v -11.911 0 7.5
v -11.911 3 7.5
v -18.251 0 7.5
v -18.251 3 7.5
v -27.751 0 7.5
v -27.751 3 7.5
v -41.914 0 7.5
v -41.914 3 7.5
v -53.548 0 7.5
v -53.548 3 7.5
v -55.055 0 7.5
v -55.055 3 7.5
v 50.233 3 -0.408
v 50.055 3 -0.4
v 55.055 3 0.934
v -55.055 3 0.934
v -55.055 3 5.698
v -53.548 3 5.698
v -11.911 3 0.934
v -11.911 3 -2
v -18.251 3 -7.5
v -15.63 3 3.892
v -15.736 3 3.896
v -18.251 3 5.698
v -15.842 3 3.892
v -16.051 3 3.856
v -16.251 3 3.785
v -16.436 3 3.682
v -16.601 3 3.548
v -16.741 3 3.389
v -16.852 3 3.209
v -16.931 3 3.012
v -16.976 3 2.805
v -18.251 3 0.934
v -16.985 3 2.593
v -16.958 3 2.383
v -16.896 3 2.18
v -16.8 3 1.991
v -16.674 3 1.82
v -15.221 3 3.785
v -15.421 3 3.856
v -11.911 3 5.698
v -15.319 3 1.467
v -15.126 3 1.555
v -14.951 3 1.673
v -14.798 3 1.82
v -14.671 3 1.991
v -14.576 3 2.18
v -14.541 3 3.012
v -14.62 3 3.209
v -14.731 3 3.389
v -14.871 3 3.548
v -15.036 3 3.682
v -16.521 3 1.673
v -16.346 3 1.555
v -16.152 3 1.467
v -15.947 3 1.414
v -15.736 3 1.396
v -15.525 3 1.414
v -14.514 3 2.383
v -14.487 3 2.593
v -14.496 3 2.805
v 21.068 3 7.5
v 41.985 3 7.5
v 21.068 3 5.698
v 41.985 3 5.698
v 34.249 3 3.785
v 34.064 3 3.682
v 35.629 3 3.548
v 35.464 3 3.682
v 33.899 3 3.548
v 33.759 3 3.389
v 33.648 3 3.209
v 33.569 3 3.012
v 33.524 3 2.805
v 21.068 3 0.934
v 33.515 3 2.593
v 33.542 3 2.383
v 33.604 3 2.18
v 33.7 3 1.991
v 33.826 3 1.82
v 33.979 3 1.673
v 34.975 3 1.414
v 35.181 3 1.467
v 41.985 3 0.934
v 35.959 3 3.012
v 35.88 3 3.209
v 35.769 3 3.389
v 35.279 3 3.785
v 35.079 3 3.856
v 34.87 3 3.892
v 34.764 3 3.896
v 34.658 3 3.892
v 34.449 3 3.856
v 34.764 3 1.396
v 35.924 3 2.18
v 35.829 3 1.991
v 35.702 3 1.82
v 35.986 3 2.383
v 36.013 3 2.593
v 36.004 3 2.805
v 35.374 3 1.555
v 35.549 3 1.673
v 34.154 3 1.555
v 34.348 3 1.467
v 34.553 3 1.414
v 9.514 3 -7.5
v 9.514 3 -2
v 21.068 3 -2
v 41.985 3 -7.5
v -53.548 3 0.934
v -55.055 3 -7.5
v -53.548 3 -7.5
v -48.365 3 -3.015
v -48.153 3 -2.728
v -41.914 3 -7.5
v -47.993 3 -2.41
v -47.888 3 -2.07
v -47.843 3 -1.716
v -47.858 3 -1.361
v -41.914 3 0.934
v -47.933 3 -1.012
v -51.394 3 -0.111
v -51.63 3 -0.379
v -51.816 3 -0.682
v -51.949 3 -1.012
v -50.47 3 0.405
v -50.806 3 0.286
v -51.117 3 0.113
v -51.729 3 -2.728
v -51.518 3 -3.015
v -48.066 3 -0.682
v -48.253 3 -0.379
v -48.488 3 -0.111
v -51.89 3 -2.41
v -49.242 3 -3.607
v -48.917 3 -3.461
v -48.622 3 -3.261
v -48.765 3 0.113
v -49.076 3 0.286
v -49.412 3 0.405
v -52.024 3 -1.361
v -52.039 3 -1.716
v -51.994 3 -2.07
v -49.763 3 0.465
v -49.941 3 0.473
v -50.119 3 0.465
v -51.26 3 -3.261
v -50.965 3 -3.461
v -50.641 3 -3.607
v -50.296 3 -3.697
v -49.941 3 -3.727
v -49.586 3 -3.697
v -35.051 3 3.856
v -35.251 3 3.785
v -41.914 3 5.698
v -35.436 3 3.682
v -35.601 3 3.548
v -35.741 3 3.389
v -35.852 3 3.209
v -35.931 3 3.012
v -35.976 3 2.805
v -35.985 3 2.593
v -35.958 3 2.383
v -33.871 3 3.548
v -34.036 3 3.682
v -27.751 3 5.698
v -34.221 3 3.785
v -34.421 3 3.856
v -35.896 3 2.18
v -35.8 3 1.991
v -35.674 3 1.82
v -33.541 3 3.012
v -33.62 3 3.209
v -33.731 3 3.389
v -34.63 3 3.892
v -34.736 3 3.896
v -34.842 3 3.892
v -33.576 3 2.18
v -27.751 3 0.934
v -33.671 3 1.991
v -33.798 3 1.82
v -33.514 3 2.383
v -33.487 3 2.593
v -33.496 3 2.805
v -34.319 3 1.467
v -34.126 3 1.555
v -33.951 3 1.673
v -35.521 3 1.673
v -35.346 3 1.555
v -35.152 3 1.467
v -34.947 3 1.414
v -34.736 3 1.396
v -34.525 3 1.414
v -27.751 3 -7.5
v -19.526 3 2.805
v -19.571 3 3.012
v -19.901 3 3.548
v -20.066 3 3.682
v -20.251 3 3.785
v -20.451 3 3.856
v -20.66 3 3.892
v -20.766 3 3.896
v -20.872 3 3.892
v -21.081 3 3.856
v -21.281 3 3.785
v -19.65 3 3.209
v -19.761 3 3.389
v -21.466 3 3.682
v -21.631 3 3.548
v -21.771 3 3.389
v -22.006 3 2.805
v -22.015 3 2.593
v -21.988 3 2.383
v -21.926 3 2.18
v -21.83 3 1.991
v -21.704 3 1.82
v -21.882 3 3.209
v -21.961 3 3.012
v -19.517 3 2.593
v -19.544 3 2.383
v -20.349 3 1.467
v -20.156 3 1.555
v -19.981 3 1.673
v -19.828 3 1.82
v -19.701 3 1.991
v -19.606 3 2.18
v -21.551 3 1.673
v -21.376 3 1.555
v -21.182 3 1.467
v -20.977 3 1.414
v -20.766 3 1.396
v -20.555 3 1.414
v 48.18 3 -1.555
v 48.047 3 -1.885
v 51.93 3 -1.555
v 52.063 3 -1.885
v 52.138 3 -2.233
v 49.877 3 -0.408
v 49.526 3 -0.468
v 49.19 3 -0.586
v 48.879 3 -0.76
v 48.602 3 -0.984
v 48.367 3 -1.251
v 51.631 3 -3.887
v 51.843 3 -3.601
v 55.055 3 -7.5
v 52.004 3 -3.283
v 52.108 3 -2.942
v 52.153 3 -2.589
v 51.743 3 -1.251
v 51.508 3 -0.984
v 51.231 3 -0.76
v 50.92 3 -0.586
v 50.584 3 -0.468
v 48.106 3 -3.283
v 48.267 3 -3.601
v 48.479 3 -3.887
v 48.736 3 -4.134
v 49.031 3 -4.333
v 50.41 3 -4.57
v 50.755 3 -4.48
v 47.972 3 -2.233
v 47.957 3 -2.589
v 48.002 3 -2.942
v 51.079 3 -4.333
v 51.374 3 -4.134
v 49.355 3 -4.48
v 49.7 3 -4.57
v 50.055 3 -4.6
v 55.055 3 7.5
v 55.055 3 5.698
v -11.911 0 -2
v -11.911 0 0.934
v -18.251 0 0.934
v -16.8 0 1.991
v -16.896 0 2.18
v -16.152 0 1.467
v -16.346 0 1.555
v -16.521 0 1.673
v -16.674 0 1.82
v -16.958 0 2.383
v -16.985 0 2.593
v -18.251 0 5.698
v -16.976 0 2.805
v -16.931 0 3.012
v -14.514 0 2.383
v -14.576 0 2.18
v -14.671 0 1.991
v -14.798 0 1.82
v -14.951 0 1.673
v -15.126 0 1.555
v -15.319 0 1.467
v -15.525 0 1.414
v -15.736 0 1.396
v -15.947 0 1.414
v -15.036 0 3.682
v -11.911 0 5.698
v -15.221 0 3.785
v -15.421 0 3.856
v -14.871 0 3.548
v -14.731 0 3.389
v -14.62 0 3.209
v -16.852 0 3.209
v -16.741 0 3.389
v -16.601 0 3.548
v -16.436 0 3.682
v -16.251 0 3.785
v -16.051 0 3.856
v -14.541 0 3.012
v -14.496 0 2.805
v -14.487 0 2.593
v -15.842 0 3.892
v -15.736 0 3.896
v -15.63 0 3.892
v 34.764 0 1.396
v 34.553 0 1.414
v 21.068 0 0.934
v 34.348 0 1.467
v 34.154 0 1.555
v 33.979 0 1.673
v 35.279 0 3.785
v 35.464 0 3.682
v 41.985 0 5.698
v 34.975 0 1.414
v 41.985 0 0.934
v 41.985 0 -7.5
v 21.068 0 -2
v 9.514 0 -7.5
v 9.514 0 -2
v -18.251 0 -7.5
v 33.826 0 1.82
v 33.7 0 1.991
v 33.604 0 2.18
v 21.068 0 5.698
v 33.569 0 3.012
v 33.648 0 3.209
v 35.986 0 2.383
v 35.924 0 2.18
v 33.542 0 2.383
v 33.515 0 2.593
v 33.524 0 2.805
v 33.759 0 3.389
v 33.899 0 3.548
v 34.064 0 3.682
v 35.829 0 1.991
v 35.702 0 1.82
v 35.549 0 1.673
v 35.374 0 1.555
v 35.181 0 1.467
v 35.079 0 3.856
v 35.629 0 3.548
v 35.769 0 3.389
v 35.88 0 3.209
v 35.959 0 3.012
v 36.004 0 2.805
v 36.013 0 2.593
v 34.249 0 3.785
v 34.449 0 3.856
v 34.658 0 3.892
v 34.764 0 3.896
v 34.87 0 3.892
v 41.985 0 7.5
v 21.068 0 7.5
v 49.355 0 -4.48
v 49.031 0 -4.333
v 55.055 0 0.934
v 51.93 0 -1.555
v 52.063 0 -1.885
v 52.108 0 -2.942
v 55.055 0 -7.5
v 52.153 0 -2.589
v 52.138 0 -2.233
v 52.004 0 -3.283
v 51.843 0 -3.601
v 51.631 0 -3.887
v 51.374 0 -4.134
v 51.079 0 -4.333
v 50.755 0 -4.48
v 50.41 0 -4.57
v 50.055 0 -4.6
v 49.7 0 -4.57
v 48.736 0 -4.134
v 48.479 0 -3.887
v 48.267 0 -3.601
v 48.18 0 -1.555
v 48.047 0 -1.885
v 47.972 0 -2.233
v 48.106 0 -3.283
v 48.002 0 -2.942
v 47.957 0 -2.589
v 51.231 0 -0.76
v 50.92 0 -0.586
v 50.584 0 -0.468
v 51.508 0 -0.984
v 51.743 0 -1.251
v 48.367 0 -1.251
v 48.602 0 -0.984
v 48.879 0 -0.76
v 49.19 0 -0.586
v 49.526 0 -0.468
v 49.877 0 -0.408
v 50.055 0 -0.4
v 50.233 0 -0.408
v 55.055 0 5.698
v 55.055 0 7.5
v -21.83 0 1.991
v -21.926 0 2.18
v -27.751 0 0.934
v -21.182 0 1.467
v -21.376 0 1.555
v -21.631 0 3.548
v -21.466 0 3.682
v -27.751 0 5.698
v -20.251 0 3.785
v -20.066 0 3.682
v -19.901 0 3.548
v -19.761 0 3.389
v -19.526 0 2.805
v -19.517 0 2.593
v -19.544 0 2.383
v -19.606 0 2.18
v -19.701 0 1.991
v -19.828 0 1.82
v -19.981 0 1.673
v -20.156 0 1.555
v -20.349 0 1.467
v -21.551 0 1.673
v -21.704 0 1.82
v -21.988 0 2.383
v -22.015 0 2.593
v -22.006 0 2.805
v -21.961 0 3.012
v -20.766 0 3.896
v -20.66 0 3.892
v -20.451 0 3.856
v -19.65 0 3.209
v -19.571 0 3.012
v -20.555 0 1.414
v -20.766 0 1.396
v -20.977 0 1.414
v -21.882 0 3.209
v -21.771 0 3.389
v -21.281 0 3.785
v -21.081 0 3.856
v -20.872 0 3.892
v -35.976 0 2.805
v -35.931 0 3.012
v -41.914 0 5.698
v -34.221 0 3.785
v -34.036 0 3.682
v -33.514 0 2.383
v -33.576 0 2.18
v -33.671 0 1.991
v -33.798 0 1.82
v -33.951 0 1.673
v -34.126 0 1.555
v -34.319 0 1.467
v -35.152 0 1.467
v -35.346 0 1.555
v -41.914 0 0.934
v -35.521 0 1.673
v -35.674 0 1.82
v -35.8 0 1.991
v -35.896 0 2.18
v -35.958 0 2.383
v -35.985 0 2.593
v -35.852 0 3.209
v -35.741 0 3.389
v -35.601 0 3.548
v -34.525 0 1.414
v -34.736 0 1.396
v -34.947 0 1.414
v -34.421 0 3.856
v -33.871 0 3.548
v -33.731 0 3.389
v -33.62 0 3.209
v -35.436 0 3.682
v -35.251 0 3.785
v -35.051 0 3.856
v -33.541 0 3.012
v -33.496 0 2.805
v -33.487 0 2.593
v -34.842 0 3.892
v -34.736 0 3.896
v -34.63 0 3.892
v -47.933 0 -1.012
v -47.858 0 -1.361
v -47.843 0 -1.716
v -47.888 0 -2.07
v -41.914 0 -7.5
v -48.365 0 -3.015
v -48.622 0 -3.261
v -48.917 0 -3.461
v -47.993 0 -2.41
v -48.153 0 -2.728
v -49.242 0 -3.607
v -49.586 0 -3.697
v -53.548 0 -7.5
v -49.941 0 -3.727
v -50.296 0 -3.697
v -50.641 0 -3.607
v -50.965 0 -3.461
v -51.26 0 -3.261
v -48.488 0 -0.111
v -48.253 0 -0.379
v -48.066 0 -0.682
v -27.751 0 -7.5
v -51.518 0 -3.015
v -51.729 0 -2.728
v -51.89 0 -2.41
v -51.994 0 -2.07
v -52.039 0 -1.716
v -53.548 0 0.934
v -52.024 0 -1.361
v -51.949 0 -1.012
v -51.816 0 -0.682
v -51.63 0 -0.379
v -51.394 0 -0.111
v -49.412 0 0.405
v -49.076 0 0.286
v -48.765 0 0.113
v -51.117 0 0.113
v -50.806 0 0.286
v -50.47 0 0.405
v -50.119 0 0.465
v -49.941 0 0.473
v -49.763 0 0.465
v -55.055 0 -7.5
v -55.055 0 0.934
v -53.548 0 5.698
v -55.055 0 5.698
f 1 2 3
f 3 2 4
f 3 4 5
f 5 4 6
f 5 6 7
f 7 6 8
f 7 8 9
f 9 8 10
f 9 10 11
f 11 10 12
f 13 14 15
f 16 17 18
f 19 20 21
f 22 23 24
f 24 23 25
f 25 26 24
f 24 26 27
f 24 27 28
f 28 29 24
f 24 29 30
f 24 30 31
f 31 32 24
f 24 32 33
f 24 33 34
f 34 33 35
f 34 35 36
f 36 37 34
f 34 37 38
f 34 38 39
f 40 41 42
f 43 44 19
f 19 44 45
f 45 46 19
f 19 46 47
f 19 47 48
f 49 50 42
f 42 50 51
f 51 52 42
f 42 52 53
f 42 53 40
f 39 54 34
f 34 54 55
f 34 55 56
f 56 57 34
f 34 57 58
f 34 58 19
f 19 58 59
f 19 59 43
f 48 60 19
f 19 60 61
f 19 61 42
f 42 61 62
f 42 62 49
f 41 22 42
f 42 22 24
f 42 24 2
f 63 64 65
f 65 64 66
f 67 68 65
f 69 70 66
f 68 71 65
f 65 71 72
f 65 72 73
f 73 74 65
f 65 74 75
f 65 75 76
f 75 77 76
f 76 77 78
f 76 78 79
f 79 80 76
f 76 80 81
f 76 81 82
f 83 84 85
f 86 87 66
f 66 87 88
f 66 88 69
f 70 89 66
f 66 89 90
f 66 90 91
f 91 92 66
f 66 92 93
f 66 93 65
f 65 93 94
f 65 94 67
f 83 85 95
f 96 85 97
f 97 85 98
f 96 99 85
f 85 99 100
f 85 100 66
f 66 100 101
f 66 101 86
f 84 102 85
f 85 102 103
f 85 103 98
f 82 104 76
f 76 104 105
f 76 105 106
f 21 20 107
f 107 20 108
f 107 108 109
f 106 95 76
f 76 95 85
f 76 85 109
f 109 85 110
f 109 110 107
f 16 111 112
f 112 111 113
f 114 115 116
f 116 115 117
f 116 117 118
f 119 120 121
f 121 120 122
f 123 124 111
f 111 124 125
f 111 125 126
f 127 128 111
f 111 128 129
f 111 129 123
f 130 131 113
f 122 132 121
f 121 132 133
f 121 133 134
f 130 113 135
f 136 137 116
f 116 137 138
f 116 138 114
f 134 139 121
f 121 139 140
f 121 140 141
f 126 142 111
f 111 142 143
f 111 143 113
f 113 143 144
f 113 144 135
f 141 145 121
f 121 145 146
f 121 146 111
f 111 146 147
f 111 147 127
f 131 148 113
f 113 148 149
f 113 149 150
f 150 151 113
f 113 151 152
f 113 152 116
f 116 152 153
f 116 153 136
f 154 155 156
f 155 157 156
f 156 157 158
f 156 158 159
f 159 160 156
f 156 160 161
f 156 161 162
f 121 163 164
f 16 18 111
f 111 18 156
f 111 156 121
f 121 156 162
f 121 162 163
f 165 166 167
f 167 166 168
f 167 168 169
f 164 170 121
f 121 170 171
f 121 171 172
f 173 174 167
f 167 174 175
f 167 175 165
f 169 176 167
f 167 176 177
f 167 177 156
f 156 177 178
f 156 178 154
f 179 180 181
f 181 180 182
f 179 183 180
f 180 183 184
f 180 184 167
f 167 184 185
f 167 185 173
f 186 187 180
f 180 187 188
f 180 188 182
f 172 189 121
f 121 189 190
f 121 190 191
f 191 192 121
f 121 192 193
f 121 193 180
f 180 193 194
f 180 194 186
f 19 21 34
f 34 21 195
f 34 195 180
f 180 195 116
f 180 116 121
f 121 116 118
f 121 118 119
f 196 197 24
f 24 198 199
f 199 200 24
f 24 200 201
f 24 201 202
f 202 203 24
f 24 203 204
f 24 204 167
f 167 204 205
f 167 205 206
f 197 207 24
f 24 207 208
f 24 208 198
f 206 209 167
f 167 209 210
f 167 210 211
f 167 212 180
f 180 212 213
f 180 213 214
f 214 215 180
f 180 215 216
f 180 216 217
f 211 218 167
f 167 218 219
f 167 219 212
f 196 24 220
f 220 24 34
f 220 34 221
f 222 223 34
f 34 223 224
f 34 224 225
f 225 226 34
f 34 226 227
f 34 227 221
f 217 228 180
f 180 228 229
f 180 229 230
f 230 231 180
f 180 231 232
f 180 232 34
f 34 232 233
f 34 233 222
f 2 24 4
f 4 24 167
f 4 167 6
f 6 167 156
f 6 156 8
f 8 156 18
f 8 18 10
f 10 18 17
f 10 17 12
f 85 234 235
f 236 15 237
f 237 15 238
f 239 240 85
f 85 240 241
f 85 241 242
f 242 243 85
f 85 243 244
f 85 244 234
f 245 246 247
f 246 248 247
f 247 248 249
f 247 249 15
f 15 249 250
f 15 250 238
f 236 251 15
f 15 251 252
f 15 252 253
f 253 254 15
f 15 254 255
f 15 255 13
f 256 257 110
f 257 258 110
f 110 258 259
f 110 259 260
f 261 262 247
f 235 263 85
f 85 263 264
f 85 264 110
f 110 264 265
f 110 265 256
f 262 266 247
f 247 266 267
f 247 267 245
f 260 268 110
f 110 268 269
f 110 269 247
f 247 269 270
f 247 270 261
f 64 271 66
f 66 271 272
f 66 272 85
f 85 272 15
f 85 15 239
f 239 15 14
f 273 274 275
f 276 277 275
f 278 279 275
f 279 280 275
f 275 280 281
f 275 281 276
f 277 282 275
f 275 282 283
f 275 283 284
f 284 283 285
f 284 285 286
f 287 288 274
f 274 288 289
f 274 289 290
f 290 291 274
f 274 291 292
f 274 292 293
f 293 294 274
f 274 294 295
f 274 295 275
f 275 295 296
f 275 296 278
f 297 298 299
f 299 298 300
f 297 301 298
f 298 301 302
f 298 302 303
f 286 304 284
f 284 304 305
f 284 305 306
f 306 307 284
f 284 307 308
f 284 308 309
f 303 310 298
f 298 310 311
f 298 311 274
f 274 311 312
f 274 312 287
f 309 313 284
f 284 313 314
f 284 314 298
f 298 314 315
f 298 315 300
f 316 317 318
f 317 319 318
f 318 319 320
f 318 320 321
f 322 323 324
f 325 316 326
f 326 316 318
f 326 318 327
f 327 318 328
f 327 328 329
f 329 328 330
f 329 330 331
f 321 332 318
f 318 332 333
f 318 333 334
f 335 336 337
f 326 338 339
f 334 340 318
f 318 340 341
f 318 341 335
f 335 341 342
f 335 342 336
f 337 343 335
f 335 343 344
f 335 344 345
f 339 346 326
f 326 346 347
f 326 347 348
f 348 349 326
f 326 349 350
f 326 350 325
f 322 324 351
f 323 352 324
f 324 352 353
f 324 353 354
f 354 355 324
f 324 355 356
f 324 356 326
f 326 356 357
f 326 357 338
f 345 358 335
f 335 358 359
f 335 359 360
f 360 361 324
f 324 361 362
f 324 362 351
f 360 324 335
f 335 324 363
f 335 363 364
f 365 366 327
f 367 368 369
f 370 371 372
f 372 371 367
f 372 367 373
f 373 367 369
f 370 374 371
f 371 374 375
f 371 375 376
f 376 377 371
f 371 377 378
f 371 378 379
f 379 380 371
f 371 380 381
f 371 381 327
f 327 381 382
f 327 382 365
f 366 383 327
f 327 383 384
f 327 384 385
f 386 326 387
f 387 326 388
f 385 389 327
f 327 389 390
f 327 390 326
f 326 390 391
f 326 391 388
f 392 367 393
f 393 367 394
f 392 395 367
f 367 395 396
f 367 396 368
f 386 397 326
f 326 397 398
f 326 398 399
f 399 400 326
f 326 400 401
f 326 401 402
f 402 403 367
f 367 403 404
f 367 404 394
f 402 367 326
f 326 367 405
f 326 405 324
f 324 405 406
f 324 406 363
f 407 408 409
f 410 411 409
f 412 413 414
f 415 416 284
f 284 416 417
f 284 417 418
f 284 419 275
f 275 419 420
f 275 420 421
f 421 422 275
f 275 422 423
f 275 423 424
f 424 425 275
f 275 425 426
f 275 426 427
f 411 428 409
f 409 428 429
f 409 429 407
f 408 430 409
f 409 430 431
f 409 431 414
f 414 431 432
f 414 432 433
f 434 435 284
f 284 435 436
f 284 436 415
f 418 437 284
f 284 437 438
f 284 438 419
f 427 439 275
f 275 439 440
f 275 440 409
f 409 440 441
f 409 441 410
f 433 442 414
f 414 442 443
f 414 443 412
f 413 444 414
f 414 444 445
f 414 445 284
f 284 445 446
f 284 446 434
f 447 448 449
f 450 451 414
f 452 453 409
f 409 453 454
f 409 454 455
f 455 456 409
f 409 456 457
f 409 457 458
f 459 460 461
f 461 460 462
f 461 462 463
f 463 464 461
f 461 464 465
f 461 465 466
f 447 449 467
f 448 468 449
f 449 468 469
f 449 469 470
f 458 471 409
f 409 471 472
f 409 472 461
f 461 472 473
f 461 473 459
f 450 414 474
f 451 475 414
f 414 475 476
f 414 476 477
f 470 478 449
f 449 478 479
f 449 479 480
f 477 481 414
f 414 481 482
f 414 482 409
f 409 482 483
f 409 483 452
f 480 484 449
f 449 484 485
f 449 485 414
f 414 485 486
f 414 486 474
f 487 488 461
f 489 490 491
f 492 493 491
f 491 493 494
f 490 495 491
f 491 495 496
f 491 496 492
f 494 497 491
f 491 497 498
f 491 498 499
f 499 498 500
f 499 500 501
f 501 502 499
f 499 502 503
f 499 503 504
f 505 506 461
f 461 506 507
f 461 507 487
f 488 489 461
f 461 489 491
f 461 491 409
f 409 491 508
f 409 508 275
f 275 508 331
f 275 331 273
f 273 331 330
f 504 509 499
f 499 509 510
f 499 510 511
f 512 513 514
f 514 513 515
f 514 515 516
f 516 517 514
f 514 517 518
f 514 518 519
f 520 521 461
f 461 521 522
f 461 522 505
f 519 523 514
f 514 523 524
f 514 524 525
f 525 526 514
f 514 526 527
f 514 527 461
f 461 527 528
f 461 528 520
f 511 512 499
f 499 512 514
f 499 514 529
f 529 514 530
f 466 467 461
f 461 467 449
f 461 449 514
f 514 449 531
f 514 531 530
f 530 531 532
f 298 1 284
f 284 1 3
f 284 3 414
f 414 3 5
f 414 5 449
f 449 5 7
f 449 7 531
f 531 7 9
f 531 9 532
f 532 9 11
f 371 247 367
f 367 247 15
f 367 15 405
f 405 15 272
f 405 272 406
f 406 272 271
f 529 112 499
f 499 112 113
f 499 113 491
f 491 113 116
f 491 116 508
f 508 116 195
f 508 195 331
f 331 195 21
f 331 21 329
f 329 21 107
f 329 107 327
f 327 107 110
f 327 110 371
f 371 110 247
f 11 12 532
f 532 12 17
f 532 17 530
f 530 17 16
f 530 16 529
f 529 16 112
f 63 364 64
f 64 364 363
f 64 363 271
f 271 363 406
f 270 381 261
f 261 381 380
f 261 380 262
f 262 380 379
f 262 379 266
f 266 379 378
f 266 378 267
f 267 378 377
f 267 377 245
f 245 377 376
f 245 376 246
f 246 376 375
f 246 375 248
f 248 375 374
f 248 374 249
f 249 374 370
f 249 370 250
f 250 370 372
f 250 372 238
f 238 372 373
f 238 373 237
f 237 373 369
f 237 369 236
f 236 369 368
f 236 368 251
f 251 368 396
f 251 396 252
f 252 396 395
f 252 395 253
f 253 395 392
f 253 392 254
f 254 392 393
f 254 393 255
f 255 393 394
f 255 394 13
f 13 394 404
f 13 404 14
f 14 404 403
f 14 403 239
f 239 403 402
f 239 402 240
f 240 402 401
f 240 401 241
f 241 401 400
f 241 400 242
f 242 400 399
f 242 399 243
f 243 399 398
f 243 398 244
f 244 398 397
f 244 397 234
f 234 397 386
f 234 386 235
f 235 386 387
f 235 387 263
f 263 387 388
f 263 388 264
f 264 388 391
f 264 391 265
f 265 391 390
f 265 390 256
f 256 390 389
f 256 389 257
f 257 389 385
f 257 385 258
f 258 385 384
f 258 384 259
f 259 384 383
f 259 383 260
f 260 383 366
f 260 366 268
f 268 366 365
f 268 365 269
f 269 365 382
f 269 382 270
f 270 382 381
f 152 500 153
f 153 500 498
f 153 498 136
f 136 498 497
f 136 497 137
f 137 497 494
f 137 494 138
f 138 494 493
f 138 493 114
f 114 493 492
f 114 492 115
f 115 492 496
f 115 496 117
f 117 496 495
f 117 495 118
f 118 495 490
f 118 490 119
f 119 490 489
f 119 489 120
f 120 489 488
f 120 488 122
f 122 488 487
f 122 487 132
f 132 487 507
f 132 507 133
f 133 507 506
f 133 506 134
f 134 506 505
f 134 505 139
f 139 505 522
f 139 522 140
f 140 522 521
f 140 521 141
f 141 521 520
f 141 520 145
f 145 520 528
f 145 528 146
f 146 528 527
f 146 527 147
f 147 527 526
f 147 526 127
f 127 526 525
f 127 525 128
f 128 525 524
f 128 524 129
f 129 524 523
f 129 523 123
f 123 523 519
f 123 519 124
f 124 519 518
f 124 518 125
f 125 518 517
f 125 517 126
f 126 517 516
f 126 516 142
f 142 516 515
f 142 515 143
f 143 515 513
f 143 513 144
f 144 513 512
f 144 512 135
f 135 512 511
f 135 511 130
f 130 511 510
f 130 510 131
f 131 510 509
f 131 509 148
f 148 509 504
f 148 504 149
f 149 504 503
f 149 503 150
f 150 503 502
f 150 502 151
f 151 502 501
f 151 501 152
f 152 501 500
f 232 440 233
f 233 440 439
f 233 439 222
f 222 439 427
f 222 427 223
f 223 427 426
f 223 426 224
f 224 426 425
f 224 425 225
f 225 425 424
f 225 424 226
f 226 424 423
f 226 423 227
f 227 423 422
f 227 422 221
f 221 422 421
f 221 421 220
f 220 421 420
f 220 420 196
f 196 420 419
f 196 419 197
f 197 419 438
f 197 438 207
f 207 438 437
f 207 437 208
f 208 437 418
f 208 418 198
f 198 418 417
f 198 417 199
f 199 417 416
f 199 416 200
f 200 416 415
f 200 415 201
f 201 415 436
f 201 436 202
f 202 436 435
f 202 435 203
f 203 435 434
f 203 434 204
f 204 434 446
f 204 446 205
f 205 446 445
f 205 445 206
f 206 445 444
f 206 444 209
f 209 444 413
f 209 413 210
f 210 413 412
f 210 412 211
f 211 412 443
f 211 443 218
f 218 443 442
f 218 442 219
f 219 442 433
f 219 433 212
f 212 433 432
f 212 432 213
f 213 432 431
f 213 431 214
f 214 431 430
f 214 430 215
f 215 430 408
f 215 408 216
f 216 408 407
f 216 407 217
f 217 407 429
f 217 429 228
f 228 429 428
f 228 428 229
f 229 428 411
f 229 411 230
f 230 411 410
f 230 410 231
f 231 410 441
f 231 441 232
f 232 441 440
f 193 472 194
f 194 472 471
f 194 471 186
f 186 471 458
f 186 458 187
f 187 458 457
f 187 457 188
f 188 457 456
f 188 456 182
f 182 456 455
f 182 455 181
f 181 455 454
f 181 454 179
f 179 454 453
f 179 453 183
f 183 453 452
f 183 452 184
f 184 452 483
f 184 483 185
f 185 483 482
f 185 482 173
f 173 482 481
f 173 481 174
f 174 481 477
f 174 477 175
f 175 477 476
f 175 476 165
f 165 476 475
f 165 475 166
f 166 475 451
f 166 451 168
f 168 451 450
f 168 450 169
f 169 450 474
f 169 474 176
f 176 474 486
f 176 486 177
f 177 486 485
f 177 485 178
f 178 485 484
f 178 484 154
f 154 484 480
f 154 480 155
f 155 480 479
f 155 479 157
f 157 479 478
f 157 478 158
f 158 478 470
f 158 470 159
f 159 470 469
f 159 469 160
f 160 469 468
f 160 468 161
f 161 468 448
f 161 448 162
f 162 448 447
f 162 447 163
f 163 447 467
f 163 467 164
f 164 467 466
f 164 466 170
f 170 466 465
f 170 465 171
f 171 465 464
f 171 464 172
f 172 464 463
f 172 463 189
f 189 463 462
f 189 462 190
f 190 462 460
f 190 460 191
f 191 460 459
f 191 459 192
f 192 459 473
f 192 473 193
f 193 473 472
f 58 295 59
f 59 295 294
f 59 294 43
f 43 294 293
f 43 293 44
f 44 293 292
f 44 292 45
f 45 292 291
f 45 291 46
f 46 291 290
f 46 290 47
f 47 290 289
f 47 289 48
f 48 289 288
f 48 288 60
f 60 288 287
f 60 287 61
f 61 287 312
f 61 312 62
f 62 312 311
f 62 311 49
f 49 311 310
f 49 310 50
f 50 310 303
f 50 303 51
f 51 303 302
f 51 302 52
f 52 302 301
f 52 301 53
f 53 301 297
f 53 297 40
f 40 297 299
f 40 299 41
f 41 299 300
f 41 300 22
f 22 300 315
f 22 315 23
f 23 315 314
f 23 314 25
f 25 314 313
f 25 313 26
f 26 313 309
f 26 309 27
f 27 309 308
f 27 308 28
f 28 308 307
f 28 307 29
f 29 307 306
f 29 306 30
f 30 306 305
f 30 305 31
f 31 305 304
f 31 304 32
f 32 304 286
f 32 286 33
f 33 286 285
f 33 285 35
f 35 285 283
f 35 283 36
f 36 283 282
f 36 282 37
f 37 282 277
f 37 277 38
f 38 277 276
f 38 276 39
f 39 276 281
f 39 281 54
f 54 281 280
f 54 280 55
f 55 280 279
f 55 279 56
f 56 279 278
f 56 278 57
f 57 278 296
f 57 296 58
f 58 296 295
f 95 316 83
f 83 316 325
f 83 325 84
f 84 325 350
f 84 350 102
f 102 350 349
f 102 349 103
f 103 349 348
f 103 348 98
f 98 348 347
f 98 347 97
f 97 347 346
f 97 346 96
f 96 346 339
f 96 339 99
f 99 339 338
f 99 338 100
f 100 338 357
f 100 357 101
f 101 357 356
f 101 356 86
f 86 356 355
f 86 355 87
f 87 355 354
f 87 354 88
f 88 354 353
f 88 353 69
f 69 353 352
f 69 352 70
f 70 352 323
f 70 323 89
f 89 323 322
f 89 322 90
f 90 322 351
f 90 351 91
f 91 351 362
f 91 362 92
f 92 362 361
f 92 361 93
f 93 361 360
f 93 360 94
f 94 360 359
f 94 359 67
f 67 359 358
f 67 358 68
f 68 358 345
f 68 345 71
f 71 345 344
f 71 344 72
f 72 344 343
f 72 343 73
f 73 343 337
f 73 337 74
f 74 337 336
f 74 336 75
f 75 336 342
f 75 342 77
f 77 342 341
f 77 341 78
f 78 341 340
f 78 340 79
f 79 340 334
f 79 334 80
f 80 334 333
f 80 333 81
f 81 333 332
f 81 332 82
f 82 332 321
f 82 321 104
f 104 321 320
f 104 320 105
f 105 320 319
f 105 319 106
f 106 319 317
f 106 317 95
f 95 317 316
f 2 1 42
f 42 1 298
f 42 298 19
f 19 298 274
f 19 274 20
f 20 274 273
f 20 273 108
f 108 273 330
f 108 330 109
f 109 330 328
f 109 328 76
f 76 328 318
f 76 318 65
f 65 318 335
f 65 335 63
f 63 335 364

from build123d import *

# Parameters (mm, degrees)
CROQUIS1_W              = 110.11
CROQUIS1_H              = 15
CROQUIS1_R              = 2.1
CROQUIS1_R_2            = 1.25
SALIENTE_EXTRUIR1_DEPTH = 3
CROQUIS4_W              = 30.354739951
CROQUIS4_H              = 9.499551224
CORTAR_EXTRUIR2_DEPTH   = 3
CROQUIS5_W              = 2.625048137
CROQUIS5_H              = 9.499551224
CORTAR_EXTRUIR3_DEPTH   = 3


with BuildPart() as part:
    # Croquis1 → Saliente-Extruir1 (new body)
    with BuildSketch(Plane(origin=(0, 0, 0), x_dir=(1, 0, 0), z_dir=(0, 1, 0))):
        Rectangle(CROQUIS1_W, CROQUIS1_H)
        with Locations(Location((50.055, 2.5, 0), (0, 0, 270))):
            Circle(CROQUIS1_R, mode=Mode.SUBTRACT)
        with Locations(Location((-49.941192306, 1.62734645, 0), (0, 0, 270))):
            Circle(CROQUIS1_R, mode=Mode.SUBTRACT)
        with Locations(Location((-20.765904609, -2.646032213, 0), (0, 0, 270))):
            Circle(CROQUIS1_R_2, mode=Mode.SUBTRACT)
        with Locations(Location((-34.735904609, -2.646032213, 0), (0, 0, 270))):
            Circle(CROQUIS1_R_2, mode=Mode.SUBTRACT)
        with Locations(Location((-15.735904609, -2.646032213, 0), (0, 0, 270))):
            Circle(CROQUIS1_R_2, mode=Mode.SUBTRACT)
        with Locations(Location((34.764095391, -2.646032213, 0), (0, 0, 270))):
            Circle(CROQUIS1_R_2, mode=Mode.SUBTRACT)
    extrude(amount=SALIENTE_EXTRUIR1_DEPTH)

    # Croquis4 → Cortar-Extruir2 (cut)
    with BuildSketch(Plane(origin=(0, 3, 0), x_dir=(1, 0, 0), z_dir=(0, 1, 0))):
        with Locations((3.265938607, -2.750224388)):
            Rectangle(CROQUIS4_W, CROQUIS4_H)
    extrude(amount=-CORTAR_EXTRUIR2_DEPTH, mode=Mode.SUBTRACT)

    # Croquis5 → Cortar-Extruir3 (cut)
    with BuildSketch(Plane(origin=(0, 3, 0), x_dir=(1, 0, 0), z_dir=(0, 1, 0))):
        with Locations((19.755832652, -2.750224388)):
            Rectangle(CROQUIS5_W, CROQUIS5_H)
    extrude(amount=-CORTAR_EXTRUIR3_DEPTH, mode=Mode.SUBTRACT)


solid = part.part
